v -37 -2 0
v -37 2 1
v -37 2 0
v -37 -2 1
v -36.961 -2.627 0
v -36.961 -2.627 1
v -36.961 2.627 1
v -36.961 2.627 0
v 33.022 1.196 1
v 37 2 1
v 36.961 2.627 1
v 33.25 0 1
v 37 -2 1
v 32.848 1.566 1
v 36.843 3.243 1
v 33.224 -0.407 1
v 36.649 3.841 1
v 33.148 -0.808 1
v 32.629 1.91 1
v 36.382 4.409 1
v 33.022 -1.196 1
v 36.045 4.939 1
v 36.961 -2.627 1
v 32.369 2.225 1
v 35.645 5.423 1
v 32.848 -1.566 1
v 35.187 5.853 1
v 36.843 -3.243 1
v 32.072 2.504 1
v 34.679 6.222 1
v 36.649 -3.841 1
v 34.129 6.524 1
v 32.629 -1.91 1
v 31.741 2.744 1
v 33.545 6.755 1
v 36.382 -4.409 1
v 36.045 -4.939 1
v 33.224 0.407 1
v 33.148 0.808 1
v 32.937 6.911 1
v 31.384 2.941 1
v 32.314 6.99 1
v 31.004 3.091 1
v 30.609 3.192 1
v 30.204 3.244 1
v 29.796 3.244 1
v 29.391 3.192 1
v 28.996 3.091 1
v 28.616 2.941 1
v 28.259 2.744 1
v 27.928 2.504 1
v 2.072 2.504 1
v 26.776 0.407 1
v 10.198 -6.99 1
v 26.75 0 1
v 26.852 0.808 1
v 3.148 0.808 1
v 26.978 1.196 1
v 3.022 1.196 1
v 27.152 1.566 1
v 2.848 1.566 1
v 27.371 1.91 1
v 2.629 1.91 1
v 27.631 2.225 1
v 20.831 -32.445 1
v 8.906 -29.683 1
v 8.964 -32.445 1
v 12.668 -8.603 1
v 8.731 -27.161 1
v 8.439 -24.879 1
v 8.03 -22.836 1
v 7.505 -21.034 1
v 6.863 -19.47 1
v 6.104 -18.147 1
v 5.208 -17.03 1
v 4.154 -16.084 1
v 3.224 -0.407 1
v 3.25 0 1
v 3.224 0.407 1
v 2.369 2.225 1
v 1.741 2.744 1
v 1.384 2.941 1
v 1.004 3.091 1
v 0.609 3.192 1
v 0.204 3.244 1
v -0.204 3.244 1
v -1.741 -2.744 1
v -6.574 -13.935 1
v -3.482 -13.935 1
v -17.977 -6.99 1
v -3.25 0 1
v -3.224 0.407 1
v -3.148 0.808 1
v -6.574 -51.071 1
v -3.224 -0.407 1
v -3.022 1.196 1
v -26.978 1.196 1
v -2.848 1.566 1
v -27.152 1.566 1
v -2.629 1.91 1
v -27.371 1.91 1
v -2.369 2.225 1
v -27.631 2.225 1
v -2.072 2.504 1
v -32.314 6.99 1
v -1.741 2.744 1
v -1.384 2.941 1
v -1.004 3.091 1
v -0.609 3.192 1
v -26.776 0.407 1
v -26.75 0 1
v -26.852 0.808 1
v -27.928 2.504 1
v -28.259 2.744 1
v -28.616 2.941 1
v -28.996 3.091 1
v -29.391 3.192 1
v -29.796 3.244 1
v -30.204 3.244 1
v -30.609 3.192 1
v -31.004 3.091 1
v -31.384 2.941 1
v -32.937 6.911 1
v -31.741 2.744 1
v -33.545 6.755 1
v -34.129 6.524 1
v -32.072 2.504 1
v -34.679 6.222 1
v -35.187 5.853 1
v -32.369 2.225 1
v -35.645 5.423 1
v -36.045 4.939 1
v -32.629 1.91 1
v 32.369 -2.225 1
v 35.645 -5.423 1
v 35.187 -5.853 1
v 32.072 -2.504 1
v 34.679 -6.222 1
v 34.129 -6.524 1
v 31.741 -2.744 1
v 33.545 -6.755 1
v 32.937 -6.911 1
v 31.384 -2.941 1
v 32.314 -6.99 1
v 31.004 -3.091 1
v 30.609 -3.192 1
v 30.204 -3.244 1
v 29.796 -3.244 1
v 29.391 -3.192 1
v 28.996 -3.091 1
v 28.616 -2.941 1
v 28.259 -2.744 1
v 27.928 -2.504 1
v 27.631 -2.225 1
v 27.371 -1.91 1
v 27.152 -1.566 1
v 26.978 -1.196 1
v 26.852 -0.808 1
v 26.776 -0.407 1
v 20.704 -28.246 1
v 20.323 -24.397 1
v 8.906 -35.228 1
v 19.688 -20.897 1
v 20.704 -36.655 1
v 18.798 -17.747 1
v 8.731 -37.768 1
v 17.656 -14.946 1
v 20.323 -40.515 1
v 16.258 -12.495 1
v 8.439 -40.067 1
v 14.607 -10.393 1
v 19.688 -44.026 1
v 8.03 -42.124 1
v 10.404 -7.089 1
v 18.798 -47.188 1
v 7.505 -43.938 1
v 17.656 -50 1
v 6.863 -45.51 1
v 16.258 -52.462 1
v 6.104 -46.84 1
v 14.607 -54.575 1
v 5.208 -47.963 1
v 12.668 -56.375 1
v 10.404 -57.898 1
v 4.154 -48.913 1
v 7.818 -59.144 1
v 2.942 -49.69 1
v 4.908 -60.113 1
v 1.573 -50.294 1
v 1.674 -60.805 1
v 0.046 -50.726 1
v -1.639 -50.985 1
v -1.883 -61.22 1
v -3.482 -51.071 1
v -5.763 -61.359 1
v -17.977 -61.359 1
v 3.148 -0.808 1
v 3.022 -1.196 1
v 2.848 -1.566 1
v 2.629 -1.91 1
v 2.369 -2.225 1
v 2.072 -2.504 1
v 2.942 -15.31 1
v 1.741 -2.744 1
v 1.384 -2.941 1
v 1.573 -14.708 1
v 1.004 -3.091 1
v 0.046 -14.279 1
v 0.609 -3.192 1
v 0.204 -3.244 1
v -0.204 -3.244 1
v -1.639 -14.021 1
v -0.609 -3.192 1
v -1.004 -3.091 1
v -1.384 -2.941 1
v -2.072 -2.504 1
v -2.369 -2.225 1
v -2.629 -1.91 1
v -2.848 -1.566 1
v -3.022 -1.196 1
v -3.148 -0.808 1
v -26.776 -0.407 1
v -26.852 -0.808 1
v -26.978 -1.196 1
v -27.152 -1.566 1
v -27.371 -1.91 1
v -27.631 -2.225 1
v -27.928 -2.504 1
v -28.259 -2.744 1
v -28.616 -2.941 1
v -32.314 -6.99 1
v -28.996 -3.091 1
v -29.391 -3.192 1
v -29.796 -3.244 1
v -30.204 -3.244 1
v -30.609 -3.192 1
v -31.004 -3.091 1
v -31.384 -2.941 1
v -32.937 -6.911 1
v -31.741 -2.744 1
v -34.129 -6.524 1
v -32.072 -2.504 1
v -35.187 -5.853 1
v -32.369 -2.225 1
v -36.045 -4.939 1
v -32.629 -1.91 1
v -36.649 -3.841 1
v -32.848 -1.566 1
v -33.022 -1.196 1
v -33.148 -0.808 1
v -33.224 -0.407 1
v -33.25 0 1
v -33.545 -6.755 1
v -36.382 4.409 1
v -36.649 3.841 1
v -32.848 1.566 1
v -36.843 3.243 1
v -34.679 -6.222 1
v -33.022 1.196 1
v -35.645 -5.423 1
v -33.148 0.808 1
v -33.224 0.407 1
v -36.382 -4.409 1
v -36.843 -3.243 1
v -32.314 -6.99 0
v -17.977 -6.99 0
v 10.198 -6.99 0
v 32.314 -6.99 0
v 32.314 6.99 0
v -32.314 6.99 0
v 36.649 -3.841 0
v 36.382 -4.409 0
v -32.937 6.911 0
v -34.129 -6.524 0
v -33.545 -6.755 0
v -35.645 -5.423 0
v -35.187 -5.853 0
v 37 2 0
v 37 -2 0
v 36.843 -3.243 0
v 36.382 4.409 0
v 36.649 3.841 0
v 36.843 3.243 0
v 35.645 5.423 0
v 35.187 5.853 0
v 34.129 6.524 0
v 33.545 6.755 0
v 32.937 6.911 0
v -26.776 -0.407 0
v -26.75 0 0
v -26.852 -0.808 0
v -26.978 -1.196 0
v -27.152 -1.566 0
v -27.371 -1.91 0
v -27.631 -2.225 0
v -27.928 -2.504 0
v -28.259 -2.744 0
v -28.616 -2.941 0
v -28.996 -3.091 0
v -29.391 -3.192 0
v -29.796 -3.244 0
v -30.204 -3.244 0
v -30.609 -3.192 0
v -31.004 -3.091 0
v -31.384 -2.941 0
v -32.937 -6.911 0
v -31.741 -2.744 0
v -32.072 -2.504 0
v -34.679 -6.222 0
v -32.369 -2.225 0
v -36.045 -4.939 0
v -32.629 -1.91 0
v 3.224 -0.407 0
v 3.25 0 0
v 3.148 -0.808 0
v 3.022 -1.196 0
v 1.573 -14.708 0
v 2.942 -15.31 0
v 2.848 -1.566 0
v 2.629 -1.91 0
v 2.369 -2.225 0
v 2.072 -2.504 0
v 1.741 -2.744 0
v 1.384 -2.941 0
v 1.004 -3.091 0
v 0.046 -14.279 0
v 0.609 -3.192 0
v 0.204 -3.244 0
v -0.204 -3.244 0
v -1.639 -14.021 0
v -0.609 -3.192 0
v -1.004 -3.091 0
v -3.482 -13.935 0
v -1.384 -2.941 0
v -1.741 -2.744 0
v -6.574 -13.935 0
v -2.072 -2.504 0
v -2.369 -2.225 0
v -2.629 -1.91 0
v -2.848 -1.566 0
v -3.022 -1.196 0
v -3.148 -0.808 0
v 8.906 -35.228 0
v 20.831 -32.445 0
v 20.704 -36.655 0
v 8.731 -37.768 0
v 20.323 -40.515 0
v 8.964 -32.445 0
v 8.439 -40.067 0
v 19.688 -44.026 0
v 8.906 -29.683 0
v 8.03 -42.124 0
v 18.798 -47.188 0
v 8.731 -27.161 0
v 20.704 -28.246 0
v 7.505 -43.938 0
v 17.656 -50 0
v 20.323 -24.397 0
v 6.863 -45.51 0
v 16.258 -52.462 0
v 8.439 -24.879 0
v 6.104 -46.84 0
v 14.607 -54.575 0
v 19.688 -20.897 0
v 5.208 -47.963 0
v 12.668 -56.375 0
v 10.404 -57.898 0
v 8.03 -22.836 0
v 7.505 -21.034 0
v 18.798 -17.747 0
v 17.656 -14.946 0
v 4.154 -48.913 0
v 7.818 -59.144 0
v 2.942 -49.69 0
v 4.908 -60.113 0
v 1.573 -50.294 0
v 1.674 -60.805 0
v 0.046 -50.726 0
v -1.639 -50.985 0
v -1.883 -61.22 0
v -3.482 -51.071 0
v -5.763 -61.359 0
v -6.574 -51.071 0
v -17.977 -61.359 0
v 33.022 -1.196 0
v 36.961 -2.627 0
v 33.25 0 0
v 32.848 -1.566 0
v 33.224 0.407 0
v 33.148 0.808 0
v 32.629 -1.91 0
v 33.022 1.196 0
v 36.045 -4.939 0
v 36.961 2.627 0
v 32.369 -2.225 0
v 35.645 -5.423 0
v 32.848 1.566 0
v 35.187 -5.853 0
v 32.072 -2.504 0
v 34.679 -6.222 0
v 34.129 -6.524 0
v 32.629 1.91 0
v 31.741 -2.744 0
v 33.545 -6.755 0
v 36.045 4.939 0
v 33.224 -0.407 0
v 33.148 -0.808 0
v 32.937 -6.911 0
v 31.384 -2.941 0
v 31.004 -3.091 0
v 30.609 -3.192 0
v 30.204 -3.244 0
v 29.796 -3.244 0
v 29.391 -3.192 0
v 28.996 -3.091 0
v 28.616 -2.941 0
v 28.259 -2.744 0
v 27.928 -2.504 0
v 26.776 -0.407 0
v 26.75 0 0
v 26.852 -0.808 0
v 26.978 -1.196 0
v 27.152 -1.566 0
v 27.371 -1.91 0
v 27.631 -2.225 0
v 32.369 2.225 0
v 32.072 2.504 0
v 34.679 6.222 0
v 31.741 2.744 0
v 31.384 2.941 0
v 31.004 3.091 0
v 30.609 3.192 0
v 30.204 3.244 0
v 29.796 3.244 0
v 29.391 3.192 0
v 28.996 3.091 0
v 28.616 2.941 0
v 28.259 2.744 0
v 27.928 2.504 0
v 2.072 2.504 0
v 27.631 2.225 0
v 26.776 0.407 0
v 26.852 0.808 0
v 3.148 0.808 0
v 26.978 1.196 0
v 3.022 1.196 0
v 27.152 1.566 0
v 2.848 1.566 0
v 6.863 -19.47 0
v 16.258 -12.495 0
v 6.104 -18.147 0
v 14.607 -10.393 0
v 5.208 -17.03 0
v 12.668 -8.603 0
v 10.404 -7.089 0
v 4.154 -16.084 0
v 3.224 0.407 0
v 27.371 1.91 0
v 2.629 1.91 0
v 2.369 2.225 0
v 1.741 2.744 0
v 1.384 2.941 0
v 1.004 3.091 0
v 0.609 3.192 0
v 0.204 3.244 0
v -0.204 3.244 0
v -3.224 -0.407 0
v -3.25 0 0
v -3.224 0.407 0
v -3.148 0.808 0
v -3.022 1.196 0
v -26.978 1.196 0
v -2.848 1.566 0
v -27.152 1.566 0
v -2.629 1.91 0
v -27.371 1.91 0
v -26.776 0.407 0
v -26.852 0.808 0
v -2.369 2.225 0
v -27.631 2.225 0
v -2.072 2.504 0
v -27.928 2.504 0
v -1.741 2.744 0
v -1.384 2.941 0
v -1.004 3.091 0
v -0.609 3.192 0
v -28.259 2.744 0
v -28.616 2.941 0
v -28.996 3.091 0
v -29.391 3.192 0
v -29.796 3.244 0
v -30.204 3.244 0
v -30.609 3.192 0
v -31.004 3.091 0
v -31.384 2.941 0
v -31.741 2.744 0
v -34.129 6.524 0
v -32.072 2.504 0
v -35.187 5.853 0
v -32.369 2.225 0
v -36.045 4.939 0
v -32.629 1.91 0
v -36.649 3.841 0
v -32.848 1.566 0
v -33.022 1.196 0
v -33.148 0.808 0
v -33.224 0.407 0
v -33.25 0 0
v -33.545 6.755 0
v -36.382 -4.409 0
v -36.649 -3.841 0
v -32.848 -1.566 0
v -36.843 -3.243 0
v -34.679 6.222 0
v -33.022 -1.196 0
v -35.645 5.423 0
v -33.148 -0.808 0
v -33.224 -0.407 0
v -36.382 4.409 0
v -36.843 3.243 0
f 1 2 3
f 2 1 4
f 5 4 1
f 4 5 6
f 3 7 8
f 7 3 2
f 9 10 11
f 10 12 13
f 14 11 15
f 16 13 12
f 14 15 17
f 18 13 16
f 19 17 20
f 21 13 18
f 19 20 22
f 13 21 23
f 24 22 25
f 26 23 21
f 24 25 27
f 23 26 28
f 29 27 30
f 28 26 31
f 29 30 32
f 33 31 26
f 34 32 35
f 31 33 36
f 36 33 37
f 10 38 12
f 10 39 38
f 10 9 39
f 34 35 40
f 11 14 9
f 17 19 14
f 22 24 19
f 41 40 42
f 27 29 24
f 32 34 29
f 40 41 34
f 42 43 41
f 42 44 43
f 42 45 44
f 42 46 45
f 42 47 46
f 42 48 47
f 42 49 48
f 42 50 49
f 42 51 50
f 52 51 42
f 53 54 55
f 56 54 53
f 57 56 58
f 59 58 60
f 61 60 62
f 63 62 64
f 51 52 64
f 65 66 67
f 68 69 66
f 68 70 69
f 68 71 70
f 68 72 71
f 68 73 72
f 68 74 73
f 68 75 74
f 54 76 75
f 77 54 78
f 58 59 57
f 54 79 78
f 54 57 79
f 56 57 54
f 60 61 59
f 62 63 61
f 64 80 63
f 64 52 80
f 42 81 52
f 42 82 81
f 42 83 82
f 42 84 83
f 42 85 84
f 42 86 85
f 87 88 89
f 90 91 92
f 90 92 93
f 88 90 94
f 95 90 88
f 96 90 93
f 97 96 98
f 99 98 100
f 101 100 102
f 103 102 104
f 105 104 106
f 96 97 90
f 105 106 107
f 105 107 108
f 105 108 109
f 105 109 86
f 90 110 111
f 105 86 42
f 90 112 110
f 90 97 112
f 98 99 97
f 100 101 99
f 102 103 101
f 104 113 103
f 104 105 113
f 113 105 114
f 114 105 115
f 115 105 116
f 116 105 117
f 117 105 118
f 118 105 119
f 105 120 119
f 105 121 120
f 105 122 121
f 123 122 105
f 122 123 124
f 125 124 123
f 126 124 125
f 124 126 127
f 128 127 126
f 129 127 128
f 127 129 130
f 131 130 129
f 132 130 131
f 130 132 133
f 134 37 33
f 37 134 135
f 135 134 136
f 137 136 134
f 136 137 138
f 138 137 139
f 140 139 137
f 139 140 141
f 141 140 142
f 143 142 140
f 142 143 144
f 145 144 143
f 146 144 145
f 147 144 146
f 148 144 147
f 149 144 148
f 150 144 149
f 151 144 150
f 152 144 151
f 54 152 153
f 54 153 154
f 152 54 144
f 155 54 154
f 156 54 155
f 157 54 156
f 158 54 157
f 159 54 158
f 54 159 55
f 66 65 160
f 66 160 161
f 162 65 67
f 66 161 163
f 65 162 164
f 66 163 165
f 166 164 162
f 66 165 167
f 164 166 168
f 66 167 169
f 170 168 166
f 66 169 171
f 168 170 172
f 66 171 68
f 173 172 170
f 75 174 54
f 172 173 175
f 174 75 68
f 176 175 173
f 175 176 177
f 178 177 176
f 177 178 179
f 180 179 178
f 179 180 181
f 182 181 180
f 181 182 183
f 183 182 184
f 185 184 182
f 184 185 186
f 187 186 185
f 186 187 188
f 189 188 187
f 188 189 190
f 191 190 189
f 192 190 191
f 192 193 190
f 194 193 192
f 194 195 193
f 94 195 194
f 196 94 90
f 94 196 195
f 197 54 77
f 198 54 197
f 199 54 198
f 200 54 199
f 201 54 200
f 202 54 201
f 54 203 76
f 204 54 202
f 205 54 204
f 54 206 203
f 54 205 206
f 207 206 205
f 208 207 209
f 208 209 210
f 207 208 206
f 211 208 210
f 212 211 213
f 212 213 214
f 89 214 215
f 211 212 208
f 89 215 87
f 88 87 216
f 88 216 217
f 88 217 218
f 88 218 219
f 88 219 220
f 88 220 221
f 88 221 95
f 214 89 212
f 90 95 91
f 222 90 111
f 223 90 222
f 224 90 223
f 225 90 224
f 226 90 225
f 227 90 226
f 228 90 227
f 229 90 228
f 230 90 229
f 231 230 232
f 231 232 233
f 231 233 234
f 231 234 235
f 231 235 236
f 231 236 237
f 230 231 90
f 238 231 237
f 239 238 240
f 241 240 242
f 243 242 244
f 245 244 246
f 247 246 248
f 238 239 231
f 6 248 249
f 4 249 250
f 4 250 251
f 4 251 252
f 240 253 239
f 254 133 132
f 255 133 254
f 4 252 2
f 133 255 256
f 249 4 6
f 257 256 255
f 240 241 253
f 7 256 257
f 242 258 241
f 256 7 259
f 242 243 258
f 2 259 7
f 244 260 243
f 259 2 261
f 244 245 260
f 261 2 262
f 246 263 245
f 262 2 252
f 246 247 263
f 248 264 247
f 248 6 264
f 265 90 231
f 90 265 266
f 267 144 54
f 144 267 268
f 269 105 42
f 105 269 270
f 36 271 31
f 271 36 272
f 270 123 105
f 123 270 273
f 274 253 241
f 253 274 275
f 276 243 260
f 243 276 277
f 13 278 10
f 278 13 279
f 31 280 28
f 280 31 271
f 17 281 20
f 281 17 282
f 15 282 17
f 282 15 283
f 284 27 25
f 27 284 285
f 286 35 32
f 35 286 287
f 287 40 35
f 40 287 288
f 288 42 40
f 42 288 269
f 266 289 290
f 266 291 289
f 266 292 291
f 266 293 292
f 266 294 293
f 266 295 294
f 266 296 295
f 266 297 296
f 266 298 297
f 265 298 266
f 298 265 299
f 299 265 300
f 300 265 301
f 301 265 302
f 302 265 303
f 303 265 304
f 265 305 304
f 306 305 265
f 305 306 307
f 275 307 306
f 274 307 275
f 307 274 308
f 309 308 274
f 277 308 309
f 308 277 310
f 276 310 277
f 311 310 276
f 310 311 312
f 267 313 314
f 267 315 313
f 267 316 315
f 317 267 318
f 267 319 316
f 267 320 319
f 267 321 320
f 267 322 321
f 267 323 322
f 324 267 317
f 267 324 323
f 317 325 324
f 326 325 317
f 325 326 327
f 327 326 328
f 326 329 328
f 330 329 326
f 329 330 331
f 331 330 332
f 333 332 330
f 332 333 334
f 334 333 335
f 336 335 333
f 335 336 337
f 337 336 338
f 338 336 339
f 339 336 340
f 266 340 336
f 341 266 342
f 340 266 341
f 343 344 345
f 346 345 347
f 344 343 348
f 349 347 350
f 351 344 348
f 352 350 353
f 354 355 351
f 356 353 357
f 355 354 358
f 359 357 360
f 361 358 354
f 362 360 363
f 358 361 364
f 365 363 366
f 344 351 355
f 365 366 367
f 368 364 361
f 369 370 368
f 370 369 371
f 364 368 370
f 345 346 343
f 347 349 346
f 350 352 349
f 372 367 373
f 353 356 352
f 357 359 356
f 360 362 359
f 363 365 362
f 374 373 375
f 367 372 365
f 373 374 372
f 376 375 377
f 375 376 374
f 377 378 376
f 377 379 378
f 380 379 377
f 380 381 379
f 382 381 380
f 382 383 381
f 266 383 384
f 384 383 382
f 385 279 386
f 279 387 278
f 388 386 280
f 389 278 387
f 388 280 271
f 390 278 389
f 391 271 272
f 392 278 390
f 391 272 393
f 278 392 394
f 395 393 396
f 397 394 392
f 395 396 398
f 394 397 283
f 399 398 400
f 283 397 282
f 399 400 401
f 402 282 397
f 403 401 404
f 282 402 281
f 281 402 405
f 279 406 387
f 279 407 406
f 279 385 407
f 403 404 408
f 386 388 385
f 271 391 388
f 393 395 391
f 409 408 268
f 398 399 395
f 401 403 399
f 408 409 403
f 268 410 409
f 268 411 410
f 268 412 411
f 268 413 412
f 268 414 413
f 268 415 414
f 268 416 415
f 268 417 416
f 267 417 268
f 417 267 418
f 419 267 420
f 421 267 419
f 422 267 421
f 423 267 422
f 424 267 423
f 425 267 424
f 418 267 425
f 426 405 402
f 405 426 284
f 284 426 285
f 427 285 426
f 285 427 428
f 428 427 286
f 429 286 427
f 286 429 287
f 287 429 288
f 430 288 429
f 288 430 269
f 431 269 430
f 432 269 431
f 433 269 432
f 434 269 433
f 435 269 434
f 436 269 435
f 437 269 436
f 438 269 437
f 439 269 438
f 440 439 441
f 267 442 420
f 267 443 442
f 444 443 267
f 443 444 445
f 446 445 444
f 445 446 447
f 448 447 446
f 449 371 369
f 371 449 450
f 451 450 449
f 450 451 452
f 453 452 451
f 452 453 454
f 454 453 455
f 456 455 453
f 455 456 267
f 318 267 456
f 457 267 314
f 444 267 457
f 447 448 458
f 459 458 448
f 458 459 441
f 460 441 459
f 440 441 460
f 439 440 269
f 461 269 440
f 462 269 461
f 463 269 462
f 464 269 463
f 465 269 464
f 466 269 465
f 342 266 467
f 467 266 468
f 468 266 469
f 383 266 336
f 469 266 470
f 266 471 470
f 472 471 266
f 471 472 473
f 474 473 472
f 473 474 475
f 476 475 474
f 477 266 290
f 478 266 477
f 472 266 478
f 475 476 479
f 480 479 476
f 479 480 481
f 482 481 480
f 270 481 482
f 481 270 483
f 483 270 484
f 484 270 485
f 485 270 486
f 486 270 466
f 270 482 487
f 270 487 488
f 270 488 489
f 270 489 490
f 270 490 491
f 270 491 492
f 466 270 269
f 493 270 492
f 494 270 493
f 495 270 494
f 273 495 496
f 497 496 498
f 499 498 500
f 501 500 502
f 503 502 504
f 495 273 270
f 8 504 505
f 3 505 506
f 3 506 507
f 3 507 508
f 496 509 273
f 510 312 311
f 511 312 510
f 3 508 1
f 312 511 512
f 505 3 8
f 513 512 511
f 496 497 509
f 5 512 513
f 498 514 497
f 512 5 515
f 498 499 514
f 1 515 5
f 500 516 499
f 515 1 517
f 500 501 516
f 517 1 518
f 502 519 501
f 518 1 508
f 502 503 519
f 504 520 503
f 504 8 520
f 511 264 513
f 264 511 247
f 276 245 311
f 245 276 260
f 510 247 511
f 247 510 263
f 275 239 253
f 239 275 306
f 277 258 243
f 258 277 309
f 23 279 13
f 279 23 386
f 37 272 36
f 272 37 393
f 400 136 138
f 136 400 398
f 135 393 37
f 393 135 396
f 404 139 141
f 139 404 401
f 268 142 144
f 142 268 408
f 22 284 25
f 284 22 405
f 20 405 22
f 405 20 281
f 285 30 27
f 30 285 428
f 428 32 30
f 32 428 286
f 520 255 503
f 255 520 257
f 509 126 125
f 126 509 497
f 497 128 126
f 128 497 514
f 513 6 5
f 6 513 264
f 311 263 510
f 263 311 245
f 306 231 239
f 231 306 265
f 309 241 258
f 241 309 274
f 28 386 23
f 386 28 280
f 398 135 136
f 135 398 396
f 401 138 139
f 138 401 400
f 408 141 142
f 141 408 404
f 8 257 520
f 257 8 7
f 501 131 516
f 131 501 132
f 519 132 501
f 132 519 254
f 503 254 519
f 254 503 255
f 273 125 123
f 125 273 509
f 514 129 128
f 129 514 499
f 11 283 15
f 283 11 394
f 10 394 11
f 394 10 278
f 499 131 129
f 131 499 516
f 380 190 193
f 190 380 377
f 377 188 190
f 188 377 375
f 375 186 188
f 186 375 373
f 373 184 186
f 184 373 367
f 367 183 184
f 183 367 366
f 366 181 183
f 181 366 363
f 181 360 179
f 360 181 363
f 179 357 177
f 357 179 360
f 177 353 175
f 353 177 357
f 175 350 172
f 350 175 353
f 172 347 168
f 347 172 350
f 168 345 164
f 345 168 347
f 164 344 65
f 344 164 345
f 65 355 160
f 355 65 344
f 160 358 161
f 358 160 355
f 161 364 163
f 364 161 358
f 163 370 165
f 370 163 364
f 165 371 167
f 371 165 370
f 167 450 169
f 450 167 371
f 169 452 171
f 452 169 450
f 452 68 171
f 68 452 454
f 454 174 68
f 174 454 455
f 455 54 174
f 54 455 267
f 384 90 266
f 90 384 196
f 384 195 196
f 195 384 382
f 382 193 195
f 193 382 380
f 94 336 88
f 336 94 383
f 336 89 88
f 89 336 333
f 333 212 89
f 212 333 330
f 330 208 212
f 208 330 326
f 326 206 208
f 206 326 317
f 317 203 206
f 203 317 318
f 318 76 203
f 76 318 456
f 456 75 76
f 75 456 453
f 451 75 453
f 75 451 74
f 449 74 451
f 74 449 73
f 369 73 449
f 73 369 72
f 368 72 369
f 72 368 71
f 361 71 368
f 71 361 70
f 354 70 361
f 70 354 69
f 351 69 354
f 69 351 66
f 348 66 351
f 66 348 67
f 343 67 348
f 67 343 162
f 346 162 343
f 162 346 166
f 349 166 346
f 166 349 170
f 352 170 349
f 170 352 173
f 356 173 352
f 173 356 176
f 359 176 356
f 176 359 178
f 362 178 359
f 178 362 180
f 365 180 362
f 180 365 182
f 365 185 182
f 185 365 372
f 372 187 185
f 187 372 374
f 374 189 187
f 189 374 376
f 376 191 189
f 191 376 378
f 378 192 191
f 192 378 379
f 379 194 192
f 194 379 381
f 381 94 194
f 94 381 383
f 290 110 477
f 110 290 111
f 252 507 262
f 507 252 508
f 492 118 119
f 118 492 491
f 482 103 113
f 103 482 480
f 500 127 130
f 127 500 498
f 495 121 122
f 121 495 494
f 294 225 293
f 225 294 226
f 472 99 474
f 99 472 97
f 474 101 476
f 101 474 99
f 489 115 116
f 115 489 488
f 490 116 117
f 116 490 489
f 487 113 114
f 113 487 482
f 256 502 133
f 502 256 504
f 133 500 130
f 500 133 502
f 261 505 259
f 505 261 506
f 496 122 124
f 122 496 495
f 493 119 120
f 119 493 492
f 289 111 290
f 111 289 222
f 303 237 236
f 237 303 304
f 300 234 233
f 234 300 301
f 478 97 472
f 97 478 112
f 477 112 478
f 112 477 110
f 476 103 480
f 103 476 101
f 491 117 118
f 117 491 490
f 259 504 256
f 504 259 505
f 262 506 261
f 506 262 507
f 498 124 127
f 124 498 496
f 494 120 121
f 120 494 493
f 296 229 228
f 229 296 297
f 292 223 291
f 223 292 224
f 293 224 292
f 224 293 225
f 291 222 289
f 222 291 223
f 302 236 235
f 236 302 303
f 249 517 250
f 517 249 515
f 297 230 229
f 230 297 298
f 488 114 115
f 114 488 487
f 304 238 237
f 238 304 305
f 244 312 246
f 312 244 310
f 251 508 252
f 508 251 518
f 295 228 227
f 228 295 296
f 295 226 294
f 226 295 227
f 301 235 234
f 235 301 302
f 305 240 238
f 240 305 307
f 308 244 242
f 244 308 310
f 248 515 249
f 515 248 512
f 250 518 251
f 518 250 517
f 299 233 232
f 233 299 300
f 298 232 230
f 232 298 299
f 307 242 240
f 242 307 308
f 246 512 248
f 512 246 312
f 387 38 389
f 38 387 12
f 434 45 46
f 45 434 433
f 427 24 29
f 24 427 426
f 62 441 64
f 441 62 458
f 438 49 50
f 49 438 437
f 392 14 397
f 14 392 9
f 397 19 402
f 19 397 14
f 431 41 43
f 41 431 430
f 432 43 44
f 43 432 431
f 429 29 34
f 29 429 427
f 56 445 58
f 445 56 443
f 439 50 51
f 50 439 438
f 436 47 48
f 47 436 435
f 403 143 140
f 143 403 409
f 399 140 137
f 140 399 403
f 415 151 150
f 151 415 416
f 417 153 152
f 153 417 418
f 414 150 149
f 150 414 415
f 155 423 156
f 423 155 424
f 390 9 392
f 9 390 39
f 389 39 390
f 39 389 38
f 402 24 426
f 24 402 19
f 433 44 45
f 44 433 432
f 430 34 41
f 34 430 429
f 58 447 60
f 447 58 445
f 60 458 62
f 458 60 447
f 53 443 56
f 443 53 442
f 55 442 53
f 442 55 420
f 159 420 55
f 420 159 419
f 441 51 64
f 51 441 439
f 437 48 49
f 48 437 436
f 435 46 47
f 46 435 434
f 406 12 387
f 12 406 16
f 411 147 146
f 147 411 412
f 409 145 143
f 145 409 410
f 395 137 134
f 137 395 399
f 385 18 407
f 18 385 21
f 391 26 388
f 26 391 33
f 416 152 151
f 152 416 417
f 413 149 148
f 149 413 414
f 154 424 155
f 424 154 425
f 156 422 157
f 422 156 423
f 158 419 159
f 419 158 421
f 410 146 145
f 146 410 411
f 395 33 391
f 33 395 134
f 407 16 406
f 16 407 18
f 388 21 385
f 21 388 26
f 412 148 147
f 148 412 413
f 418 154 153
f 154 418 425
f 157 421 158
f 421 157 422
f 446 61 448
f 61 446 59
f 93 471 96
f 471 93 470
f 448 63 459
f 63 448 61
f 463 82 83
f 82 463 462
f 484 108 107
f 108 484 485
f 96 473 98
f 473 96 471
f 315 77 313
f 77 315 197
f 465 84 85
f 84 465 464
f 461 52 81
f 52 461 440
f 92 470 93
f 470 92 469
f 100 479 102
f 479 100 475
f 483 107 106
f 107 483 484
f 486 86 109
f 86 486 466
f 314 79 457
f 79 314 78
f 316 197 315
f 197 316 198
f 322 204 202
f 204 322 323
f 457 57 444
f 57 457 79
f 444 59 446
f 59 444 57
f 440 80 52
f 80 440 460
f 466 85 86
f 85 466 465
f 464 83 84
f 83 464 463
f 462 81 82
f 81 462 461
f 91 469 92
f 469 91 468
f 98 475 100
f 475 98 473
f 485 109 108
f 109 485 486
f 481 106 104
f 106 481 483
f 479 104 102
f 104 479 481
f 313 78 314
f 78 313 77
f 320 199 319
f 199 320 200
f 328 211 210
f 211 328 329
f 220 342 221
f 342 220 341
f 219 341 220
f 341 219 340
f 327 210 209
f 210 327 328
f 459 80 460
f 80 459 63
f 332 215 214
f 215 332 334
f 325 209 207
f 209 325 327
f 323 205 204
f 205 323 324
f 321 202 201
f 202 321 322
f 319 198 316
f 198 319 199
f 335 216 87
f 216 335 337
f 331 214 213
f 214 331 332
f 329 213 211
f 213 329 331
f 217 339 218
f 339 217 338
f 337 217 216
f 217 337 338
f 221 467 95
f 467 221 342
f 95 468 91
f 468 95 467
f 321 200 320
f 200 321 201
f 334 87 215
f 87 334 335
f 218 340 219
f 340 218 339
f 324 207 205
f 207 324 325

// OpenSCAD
$fn = 50;


difference() {
	union() {
		translate(v = [0, 0, 0]) {
			rotate(a = [0, 0, 0]) {
				hull() {
					translate(v = [-32.0000000000, 2.0000000000, 0]) {
						rotate(a = [0, 0, 0]) {
							translate(v = [0, 0, 0]) {
								rotate(a = [0, 0, 0]) {
									cylinder(h = 1, r = 5);
								}
							}
						}
					}
					translate(v = [32.0000000000, 2.0000000000, 0]) {
						rotate(a = [0, 0, 0]) {
							translate(v = [0, 0, 0]) {
								rotate(a = [0, 0, 0]) {
									cylinder(h = 1, r = 5);
								}
							}
						}
					}
					translate(v = [-32.0000000000, -2.0000000000, 0]) {
						rotate(a = [0, 0, 0]) {
							translate(v = [0, 0, 0]) {
								rotate(a = [0, 0, 0]) {
									cylinder(h = 1, r = 5);
								}
							}
						}
					}
					translate(v = [32.0000000000, -2.0000000000, 0]) {
						rotate(a = [0, 0, 0]) {
							translate(v = [0, 0, 0]) {
								rotate(a = [0, 0, 0]) {
									cylinder(h = 1, r = 5);
								}
							}
						}
					}
				}
			}
		}
		translate(v = [0, -5, 0]) {
			rotate(a = [0, 0, 0]) {
				linear_extrude(height = 1) {
					text(font = "DejaVu Sans Mono:style=Bold", halign = "center", size = 57.0000000000, text = "D", valign = "top");
				}
			}
		}
	}
	union() {
		translate(v = [-30.0000000000, 0.0000000000, -125.0000000000]) {
			rotate(a = [0, 0, 0]) {
				cylinder(h = 250, r = 3.2500000000);
			}
		}
		translate(v = [30.0000000000, 0.0000000000, -125.0000000000]) {
			rotate(a = [0, 0, 0]) {
				cylinder(h = 250, r = 3.2500000000);
			}
		}
		translate(v = [30.0000000000, 0.0000000000, -125.0000000000]) {
			rotate(a = [0, 0, 0]) {
				cylinder(h = 250, r = 3.2500000000);
			}
		}
		translate(v = [0, 0, -125.0000000000]) {
			rotate(a = [0, 0, 0]) {
				cylinder(h = 250, r = 3.2500000000);
			}
		}
	}
}
